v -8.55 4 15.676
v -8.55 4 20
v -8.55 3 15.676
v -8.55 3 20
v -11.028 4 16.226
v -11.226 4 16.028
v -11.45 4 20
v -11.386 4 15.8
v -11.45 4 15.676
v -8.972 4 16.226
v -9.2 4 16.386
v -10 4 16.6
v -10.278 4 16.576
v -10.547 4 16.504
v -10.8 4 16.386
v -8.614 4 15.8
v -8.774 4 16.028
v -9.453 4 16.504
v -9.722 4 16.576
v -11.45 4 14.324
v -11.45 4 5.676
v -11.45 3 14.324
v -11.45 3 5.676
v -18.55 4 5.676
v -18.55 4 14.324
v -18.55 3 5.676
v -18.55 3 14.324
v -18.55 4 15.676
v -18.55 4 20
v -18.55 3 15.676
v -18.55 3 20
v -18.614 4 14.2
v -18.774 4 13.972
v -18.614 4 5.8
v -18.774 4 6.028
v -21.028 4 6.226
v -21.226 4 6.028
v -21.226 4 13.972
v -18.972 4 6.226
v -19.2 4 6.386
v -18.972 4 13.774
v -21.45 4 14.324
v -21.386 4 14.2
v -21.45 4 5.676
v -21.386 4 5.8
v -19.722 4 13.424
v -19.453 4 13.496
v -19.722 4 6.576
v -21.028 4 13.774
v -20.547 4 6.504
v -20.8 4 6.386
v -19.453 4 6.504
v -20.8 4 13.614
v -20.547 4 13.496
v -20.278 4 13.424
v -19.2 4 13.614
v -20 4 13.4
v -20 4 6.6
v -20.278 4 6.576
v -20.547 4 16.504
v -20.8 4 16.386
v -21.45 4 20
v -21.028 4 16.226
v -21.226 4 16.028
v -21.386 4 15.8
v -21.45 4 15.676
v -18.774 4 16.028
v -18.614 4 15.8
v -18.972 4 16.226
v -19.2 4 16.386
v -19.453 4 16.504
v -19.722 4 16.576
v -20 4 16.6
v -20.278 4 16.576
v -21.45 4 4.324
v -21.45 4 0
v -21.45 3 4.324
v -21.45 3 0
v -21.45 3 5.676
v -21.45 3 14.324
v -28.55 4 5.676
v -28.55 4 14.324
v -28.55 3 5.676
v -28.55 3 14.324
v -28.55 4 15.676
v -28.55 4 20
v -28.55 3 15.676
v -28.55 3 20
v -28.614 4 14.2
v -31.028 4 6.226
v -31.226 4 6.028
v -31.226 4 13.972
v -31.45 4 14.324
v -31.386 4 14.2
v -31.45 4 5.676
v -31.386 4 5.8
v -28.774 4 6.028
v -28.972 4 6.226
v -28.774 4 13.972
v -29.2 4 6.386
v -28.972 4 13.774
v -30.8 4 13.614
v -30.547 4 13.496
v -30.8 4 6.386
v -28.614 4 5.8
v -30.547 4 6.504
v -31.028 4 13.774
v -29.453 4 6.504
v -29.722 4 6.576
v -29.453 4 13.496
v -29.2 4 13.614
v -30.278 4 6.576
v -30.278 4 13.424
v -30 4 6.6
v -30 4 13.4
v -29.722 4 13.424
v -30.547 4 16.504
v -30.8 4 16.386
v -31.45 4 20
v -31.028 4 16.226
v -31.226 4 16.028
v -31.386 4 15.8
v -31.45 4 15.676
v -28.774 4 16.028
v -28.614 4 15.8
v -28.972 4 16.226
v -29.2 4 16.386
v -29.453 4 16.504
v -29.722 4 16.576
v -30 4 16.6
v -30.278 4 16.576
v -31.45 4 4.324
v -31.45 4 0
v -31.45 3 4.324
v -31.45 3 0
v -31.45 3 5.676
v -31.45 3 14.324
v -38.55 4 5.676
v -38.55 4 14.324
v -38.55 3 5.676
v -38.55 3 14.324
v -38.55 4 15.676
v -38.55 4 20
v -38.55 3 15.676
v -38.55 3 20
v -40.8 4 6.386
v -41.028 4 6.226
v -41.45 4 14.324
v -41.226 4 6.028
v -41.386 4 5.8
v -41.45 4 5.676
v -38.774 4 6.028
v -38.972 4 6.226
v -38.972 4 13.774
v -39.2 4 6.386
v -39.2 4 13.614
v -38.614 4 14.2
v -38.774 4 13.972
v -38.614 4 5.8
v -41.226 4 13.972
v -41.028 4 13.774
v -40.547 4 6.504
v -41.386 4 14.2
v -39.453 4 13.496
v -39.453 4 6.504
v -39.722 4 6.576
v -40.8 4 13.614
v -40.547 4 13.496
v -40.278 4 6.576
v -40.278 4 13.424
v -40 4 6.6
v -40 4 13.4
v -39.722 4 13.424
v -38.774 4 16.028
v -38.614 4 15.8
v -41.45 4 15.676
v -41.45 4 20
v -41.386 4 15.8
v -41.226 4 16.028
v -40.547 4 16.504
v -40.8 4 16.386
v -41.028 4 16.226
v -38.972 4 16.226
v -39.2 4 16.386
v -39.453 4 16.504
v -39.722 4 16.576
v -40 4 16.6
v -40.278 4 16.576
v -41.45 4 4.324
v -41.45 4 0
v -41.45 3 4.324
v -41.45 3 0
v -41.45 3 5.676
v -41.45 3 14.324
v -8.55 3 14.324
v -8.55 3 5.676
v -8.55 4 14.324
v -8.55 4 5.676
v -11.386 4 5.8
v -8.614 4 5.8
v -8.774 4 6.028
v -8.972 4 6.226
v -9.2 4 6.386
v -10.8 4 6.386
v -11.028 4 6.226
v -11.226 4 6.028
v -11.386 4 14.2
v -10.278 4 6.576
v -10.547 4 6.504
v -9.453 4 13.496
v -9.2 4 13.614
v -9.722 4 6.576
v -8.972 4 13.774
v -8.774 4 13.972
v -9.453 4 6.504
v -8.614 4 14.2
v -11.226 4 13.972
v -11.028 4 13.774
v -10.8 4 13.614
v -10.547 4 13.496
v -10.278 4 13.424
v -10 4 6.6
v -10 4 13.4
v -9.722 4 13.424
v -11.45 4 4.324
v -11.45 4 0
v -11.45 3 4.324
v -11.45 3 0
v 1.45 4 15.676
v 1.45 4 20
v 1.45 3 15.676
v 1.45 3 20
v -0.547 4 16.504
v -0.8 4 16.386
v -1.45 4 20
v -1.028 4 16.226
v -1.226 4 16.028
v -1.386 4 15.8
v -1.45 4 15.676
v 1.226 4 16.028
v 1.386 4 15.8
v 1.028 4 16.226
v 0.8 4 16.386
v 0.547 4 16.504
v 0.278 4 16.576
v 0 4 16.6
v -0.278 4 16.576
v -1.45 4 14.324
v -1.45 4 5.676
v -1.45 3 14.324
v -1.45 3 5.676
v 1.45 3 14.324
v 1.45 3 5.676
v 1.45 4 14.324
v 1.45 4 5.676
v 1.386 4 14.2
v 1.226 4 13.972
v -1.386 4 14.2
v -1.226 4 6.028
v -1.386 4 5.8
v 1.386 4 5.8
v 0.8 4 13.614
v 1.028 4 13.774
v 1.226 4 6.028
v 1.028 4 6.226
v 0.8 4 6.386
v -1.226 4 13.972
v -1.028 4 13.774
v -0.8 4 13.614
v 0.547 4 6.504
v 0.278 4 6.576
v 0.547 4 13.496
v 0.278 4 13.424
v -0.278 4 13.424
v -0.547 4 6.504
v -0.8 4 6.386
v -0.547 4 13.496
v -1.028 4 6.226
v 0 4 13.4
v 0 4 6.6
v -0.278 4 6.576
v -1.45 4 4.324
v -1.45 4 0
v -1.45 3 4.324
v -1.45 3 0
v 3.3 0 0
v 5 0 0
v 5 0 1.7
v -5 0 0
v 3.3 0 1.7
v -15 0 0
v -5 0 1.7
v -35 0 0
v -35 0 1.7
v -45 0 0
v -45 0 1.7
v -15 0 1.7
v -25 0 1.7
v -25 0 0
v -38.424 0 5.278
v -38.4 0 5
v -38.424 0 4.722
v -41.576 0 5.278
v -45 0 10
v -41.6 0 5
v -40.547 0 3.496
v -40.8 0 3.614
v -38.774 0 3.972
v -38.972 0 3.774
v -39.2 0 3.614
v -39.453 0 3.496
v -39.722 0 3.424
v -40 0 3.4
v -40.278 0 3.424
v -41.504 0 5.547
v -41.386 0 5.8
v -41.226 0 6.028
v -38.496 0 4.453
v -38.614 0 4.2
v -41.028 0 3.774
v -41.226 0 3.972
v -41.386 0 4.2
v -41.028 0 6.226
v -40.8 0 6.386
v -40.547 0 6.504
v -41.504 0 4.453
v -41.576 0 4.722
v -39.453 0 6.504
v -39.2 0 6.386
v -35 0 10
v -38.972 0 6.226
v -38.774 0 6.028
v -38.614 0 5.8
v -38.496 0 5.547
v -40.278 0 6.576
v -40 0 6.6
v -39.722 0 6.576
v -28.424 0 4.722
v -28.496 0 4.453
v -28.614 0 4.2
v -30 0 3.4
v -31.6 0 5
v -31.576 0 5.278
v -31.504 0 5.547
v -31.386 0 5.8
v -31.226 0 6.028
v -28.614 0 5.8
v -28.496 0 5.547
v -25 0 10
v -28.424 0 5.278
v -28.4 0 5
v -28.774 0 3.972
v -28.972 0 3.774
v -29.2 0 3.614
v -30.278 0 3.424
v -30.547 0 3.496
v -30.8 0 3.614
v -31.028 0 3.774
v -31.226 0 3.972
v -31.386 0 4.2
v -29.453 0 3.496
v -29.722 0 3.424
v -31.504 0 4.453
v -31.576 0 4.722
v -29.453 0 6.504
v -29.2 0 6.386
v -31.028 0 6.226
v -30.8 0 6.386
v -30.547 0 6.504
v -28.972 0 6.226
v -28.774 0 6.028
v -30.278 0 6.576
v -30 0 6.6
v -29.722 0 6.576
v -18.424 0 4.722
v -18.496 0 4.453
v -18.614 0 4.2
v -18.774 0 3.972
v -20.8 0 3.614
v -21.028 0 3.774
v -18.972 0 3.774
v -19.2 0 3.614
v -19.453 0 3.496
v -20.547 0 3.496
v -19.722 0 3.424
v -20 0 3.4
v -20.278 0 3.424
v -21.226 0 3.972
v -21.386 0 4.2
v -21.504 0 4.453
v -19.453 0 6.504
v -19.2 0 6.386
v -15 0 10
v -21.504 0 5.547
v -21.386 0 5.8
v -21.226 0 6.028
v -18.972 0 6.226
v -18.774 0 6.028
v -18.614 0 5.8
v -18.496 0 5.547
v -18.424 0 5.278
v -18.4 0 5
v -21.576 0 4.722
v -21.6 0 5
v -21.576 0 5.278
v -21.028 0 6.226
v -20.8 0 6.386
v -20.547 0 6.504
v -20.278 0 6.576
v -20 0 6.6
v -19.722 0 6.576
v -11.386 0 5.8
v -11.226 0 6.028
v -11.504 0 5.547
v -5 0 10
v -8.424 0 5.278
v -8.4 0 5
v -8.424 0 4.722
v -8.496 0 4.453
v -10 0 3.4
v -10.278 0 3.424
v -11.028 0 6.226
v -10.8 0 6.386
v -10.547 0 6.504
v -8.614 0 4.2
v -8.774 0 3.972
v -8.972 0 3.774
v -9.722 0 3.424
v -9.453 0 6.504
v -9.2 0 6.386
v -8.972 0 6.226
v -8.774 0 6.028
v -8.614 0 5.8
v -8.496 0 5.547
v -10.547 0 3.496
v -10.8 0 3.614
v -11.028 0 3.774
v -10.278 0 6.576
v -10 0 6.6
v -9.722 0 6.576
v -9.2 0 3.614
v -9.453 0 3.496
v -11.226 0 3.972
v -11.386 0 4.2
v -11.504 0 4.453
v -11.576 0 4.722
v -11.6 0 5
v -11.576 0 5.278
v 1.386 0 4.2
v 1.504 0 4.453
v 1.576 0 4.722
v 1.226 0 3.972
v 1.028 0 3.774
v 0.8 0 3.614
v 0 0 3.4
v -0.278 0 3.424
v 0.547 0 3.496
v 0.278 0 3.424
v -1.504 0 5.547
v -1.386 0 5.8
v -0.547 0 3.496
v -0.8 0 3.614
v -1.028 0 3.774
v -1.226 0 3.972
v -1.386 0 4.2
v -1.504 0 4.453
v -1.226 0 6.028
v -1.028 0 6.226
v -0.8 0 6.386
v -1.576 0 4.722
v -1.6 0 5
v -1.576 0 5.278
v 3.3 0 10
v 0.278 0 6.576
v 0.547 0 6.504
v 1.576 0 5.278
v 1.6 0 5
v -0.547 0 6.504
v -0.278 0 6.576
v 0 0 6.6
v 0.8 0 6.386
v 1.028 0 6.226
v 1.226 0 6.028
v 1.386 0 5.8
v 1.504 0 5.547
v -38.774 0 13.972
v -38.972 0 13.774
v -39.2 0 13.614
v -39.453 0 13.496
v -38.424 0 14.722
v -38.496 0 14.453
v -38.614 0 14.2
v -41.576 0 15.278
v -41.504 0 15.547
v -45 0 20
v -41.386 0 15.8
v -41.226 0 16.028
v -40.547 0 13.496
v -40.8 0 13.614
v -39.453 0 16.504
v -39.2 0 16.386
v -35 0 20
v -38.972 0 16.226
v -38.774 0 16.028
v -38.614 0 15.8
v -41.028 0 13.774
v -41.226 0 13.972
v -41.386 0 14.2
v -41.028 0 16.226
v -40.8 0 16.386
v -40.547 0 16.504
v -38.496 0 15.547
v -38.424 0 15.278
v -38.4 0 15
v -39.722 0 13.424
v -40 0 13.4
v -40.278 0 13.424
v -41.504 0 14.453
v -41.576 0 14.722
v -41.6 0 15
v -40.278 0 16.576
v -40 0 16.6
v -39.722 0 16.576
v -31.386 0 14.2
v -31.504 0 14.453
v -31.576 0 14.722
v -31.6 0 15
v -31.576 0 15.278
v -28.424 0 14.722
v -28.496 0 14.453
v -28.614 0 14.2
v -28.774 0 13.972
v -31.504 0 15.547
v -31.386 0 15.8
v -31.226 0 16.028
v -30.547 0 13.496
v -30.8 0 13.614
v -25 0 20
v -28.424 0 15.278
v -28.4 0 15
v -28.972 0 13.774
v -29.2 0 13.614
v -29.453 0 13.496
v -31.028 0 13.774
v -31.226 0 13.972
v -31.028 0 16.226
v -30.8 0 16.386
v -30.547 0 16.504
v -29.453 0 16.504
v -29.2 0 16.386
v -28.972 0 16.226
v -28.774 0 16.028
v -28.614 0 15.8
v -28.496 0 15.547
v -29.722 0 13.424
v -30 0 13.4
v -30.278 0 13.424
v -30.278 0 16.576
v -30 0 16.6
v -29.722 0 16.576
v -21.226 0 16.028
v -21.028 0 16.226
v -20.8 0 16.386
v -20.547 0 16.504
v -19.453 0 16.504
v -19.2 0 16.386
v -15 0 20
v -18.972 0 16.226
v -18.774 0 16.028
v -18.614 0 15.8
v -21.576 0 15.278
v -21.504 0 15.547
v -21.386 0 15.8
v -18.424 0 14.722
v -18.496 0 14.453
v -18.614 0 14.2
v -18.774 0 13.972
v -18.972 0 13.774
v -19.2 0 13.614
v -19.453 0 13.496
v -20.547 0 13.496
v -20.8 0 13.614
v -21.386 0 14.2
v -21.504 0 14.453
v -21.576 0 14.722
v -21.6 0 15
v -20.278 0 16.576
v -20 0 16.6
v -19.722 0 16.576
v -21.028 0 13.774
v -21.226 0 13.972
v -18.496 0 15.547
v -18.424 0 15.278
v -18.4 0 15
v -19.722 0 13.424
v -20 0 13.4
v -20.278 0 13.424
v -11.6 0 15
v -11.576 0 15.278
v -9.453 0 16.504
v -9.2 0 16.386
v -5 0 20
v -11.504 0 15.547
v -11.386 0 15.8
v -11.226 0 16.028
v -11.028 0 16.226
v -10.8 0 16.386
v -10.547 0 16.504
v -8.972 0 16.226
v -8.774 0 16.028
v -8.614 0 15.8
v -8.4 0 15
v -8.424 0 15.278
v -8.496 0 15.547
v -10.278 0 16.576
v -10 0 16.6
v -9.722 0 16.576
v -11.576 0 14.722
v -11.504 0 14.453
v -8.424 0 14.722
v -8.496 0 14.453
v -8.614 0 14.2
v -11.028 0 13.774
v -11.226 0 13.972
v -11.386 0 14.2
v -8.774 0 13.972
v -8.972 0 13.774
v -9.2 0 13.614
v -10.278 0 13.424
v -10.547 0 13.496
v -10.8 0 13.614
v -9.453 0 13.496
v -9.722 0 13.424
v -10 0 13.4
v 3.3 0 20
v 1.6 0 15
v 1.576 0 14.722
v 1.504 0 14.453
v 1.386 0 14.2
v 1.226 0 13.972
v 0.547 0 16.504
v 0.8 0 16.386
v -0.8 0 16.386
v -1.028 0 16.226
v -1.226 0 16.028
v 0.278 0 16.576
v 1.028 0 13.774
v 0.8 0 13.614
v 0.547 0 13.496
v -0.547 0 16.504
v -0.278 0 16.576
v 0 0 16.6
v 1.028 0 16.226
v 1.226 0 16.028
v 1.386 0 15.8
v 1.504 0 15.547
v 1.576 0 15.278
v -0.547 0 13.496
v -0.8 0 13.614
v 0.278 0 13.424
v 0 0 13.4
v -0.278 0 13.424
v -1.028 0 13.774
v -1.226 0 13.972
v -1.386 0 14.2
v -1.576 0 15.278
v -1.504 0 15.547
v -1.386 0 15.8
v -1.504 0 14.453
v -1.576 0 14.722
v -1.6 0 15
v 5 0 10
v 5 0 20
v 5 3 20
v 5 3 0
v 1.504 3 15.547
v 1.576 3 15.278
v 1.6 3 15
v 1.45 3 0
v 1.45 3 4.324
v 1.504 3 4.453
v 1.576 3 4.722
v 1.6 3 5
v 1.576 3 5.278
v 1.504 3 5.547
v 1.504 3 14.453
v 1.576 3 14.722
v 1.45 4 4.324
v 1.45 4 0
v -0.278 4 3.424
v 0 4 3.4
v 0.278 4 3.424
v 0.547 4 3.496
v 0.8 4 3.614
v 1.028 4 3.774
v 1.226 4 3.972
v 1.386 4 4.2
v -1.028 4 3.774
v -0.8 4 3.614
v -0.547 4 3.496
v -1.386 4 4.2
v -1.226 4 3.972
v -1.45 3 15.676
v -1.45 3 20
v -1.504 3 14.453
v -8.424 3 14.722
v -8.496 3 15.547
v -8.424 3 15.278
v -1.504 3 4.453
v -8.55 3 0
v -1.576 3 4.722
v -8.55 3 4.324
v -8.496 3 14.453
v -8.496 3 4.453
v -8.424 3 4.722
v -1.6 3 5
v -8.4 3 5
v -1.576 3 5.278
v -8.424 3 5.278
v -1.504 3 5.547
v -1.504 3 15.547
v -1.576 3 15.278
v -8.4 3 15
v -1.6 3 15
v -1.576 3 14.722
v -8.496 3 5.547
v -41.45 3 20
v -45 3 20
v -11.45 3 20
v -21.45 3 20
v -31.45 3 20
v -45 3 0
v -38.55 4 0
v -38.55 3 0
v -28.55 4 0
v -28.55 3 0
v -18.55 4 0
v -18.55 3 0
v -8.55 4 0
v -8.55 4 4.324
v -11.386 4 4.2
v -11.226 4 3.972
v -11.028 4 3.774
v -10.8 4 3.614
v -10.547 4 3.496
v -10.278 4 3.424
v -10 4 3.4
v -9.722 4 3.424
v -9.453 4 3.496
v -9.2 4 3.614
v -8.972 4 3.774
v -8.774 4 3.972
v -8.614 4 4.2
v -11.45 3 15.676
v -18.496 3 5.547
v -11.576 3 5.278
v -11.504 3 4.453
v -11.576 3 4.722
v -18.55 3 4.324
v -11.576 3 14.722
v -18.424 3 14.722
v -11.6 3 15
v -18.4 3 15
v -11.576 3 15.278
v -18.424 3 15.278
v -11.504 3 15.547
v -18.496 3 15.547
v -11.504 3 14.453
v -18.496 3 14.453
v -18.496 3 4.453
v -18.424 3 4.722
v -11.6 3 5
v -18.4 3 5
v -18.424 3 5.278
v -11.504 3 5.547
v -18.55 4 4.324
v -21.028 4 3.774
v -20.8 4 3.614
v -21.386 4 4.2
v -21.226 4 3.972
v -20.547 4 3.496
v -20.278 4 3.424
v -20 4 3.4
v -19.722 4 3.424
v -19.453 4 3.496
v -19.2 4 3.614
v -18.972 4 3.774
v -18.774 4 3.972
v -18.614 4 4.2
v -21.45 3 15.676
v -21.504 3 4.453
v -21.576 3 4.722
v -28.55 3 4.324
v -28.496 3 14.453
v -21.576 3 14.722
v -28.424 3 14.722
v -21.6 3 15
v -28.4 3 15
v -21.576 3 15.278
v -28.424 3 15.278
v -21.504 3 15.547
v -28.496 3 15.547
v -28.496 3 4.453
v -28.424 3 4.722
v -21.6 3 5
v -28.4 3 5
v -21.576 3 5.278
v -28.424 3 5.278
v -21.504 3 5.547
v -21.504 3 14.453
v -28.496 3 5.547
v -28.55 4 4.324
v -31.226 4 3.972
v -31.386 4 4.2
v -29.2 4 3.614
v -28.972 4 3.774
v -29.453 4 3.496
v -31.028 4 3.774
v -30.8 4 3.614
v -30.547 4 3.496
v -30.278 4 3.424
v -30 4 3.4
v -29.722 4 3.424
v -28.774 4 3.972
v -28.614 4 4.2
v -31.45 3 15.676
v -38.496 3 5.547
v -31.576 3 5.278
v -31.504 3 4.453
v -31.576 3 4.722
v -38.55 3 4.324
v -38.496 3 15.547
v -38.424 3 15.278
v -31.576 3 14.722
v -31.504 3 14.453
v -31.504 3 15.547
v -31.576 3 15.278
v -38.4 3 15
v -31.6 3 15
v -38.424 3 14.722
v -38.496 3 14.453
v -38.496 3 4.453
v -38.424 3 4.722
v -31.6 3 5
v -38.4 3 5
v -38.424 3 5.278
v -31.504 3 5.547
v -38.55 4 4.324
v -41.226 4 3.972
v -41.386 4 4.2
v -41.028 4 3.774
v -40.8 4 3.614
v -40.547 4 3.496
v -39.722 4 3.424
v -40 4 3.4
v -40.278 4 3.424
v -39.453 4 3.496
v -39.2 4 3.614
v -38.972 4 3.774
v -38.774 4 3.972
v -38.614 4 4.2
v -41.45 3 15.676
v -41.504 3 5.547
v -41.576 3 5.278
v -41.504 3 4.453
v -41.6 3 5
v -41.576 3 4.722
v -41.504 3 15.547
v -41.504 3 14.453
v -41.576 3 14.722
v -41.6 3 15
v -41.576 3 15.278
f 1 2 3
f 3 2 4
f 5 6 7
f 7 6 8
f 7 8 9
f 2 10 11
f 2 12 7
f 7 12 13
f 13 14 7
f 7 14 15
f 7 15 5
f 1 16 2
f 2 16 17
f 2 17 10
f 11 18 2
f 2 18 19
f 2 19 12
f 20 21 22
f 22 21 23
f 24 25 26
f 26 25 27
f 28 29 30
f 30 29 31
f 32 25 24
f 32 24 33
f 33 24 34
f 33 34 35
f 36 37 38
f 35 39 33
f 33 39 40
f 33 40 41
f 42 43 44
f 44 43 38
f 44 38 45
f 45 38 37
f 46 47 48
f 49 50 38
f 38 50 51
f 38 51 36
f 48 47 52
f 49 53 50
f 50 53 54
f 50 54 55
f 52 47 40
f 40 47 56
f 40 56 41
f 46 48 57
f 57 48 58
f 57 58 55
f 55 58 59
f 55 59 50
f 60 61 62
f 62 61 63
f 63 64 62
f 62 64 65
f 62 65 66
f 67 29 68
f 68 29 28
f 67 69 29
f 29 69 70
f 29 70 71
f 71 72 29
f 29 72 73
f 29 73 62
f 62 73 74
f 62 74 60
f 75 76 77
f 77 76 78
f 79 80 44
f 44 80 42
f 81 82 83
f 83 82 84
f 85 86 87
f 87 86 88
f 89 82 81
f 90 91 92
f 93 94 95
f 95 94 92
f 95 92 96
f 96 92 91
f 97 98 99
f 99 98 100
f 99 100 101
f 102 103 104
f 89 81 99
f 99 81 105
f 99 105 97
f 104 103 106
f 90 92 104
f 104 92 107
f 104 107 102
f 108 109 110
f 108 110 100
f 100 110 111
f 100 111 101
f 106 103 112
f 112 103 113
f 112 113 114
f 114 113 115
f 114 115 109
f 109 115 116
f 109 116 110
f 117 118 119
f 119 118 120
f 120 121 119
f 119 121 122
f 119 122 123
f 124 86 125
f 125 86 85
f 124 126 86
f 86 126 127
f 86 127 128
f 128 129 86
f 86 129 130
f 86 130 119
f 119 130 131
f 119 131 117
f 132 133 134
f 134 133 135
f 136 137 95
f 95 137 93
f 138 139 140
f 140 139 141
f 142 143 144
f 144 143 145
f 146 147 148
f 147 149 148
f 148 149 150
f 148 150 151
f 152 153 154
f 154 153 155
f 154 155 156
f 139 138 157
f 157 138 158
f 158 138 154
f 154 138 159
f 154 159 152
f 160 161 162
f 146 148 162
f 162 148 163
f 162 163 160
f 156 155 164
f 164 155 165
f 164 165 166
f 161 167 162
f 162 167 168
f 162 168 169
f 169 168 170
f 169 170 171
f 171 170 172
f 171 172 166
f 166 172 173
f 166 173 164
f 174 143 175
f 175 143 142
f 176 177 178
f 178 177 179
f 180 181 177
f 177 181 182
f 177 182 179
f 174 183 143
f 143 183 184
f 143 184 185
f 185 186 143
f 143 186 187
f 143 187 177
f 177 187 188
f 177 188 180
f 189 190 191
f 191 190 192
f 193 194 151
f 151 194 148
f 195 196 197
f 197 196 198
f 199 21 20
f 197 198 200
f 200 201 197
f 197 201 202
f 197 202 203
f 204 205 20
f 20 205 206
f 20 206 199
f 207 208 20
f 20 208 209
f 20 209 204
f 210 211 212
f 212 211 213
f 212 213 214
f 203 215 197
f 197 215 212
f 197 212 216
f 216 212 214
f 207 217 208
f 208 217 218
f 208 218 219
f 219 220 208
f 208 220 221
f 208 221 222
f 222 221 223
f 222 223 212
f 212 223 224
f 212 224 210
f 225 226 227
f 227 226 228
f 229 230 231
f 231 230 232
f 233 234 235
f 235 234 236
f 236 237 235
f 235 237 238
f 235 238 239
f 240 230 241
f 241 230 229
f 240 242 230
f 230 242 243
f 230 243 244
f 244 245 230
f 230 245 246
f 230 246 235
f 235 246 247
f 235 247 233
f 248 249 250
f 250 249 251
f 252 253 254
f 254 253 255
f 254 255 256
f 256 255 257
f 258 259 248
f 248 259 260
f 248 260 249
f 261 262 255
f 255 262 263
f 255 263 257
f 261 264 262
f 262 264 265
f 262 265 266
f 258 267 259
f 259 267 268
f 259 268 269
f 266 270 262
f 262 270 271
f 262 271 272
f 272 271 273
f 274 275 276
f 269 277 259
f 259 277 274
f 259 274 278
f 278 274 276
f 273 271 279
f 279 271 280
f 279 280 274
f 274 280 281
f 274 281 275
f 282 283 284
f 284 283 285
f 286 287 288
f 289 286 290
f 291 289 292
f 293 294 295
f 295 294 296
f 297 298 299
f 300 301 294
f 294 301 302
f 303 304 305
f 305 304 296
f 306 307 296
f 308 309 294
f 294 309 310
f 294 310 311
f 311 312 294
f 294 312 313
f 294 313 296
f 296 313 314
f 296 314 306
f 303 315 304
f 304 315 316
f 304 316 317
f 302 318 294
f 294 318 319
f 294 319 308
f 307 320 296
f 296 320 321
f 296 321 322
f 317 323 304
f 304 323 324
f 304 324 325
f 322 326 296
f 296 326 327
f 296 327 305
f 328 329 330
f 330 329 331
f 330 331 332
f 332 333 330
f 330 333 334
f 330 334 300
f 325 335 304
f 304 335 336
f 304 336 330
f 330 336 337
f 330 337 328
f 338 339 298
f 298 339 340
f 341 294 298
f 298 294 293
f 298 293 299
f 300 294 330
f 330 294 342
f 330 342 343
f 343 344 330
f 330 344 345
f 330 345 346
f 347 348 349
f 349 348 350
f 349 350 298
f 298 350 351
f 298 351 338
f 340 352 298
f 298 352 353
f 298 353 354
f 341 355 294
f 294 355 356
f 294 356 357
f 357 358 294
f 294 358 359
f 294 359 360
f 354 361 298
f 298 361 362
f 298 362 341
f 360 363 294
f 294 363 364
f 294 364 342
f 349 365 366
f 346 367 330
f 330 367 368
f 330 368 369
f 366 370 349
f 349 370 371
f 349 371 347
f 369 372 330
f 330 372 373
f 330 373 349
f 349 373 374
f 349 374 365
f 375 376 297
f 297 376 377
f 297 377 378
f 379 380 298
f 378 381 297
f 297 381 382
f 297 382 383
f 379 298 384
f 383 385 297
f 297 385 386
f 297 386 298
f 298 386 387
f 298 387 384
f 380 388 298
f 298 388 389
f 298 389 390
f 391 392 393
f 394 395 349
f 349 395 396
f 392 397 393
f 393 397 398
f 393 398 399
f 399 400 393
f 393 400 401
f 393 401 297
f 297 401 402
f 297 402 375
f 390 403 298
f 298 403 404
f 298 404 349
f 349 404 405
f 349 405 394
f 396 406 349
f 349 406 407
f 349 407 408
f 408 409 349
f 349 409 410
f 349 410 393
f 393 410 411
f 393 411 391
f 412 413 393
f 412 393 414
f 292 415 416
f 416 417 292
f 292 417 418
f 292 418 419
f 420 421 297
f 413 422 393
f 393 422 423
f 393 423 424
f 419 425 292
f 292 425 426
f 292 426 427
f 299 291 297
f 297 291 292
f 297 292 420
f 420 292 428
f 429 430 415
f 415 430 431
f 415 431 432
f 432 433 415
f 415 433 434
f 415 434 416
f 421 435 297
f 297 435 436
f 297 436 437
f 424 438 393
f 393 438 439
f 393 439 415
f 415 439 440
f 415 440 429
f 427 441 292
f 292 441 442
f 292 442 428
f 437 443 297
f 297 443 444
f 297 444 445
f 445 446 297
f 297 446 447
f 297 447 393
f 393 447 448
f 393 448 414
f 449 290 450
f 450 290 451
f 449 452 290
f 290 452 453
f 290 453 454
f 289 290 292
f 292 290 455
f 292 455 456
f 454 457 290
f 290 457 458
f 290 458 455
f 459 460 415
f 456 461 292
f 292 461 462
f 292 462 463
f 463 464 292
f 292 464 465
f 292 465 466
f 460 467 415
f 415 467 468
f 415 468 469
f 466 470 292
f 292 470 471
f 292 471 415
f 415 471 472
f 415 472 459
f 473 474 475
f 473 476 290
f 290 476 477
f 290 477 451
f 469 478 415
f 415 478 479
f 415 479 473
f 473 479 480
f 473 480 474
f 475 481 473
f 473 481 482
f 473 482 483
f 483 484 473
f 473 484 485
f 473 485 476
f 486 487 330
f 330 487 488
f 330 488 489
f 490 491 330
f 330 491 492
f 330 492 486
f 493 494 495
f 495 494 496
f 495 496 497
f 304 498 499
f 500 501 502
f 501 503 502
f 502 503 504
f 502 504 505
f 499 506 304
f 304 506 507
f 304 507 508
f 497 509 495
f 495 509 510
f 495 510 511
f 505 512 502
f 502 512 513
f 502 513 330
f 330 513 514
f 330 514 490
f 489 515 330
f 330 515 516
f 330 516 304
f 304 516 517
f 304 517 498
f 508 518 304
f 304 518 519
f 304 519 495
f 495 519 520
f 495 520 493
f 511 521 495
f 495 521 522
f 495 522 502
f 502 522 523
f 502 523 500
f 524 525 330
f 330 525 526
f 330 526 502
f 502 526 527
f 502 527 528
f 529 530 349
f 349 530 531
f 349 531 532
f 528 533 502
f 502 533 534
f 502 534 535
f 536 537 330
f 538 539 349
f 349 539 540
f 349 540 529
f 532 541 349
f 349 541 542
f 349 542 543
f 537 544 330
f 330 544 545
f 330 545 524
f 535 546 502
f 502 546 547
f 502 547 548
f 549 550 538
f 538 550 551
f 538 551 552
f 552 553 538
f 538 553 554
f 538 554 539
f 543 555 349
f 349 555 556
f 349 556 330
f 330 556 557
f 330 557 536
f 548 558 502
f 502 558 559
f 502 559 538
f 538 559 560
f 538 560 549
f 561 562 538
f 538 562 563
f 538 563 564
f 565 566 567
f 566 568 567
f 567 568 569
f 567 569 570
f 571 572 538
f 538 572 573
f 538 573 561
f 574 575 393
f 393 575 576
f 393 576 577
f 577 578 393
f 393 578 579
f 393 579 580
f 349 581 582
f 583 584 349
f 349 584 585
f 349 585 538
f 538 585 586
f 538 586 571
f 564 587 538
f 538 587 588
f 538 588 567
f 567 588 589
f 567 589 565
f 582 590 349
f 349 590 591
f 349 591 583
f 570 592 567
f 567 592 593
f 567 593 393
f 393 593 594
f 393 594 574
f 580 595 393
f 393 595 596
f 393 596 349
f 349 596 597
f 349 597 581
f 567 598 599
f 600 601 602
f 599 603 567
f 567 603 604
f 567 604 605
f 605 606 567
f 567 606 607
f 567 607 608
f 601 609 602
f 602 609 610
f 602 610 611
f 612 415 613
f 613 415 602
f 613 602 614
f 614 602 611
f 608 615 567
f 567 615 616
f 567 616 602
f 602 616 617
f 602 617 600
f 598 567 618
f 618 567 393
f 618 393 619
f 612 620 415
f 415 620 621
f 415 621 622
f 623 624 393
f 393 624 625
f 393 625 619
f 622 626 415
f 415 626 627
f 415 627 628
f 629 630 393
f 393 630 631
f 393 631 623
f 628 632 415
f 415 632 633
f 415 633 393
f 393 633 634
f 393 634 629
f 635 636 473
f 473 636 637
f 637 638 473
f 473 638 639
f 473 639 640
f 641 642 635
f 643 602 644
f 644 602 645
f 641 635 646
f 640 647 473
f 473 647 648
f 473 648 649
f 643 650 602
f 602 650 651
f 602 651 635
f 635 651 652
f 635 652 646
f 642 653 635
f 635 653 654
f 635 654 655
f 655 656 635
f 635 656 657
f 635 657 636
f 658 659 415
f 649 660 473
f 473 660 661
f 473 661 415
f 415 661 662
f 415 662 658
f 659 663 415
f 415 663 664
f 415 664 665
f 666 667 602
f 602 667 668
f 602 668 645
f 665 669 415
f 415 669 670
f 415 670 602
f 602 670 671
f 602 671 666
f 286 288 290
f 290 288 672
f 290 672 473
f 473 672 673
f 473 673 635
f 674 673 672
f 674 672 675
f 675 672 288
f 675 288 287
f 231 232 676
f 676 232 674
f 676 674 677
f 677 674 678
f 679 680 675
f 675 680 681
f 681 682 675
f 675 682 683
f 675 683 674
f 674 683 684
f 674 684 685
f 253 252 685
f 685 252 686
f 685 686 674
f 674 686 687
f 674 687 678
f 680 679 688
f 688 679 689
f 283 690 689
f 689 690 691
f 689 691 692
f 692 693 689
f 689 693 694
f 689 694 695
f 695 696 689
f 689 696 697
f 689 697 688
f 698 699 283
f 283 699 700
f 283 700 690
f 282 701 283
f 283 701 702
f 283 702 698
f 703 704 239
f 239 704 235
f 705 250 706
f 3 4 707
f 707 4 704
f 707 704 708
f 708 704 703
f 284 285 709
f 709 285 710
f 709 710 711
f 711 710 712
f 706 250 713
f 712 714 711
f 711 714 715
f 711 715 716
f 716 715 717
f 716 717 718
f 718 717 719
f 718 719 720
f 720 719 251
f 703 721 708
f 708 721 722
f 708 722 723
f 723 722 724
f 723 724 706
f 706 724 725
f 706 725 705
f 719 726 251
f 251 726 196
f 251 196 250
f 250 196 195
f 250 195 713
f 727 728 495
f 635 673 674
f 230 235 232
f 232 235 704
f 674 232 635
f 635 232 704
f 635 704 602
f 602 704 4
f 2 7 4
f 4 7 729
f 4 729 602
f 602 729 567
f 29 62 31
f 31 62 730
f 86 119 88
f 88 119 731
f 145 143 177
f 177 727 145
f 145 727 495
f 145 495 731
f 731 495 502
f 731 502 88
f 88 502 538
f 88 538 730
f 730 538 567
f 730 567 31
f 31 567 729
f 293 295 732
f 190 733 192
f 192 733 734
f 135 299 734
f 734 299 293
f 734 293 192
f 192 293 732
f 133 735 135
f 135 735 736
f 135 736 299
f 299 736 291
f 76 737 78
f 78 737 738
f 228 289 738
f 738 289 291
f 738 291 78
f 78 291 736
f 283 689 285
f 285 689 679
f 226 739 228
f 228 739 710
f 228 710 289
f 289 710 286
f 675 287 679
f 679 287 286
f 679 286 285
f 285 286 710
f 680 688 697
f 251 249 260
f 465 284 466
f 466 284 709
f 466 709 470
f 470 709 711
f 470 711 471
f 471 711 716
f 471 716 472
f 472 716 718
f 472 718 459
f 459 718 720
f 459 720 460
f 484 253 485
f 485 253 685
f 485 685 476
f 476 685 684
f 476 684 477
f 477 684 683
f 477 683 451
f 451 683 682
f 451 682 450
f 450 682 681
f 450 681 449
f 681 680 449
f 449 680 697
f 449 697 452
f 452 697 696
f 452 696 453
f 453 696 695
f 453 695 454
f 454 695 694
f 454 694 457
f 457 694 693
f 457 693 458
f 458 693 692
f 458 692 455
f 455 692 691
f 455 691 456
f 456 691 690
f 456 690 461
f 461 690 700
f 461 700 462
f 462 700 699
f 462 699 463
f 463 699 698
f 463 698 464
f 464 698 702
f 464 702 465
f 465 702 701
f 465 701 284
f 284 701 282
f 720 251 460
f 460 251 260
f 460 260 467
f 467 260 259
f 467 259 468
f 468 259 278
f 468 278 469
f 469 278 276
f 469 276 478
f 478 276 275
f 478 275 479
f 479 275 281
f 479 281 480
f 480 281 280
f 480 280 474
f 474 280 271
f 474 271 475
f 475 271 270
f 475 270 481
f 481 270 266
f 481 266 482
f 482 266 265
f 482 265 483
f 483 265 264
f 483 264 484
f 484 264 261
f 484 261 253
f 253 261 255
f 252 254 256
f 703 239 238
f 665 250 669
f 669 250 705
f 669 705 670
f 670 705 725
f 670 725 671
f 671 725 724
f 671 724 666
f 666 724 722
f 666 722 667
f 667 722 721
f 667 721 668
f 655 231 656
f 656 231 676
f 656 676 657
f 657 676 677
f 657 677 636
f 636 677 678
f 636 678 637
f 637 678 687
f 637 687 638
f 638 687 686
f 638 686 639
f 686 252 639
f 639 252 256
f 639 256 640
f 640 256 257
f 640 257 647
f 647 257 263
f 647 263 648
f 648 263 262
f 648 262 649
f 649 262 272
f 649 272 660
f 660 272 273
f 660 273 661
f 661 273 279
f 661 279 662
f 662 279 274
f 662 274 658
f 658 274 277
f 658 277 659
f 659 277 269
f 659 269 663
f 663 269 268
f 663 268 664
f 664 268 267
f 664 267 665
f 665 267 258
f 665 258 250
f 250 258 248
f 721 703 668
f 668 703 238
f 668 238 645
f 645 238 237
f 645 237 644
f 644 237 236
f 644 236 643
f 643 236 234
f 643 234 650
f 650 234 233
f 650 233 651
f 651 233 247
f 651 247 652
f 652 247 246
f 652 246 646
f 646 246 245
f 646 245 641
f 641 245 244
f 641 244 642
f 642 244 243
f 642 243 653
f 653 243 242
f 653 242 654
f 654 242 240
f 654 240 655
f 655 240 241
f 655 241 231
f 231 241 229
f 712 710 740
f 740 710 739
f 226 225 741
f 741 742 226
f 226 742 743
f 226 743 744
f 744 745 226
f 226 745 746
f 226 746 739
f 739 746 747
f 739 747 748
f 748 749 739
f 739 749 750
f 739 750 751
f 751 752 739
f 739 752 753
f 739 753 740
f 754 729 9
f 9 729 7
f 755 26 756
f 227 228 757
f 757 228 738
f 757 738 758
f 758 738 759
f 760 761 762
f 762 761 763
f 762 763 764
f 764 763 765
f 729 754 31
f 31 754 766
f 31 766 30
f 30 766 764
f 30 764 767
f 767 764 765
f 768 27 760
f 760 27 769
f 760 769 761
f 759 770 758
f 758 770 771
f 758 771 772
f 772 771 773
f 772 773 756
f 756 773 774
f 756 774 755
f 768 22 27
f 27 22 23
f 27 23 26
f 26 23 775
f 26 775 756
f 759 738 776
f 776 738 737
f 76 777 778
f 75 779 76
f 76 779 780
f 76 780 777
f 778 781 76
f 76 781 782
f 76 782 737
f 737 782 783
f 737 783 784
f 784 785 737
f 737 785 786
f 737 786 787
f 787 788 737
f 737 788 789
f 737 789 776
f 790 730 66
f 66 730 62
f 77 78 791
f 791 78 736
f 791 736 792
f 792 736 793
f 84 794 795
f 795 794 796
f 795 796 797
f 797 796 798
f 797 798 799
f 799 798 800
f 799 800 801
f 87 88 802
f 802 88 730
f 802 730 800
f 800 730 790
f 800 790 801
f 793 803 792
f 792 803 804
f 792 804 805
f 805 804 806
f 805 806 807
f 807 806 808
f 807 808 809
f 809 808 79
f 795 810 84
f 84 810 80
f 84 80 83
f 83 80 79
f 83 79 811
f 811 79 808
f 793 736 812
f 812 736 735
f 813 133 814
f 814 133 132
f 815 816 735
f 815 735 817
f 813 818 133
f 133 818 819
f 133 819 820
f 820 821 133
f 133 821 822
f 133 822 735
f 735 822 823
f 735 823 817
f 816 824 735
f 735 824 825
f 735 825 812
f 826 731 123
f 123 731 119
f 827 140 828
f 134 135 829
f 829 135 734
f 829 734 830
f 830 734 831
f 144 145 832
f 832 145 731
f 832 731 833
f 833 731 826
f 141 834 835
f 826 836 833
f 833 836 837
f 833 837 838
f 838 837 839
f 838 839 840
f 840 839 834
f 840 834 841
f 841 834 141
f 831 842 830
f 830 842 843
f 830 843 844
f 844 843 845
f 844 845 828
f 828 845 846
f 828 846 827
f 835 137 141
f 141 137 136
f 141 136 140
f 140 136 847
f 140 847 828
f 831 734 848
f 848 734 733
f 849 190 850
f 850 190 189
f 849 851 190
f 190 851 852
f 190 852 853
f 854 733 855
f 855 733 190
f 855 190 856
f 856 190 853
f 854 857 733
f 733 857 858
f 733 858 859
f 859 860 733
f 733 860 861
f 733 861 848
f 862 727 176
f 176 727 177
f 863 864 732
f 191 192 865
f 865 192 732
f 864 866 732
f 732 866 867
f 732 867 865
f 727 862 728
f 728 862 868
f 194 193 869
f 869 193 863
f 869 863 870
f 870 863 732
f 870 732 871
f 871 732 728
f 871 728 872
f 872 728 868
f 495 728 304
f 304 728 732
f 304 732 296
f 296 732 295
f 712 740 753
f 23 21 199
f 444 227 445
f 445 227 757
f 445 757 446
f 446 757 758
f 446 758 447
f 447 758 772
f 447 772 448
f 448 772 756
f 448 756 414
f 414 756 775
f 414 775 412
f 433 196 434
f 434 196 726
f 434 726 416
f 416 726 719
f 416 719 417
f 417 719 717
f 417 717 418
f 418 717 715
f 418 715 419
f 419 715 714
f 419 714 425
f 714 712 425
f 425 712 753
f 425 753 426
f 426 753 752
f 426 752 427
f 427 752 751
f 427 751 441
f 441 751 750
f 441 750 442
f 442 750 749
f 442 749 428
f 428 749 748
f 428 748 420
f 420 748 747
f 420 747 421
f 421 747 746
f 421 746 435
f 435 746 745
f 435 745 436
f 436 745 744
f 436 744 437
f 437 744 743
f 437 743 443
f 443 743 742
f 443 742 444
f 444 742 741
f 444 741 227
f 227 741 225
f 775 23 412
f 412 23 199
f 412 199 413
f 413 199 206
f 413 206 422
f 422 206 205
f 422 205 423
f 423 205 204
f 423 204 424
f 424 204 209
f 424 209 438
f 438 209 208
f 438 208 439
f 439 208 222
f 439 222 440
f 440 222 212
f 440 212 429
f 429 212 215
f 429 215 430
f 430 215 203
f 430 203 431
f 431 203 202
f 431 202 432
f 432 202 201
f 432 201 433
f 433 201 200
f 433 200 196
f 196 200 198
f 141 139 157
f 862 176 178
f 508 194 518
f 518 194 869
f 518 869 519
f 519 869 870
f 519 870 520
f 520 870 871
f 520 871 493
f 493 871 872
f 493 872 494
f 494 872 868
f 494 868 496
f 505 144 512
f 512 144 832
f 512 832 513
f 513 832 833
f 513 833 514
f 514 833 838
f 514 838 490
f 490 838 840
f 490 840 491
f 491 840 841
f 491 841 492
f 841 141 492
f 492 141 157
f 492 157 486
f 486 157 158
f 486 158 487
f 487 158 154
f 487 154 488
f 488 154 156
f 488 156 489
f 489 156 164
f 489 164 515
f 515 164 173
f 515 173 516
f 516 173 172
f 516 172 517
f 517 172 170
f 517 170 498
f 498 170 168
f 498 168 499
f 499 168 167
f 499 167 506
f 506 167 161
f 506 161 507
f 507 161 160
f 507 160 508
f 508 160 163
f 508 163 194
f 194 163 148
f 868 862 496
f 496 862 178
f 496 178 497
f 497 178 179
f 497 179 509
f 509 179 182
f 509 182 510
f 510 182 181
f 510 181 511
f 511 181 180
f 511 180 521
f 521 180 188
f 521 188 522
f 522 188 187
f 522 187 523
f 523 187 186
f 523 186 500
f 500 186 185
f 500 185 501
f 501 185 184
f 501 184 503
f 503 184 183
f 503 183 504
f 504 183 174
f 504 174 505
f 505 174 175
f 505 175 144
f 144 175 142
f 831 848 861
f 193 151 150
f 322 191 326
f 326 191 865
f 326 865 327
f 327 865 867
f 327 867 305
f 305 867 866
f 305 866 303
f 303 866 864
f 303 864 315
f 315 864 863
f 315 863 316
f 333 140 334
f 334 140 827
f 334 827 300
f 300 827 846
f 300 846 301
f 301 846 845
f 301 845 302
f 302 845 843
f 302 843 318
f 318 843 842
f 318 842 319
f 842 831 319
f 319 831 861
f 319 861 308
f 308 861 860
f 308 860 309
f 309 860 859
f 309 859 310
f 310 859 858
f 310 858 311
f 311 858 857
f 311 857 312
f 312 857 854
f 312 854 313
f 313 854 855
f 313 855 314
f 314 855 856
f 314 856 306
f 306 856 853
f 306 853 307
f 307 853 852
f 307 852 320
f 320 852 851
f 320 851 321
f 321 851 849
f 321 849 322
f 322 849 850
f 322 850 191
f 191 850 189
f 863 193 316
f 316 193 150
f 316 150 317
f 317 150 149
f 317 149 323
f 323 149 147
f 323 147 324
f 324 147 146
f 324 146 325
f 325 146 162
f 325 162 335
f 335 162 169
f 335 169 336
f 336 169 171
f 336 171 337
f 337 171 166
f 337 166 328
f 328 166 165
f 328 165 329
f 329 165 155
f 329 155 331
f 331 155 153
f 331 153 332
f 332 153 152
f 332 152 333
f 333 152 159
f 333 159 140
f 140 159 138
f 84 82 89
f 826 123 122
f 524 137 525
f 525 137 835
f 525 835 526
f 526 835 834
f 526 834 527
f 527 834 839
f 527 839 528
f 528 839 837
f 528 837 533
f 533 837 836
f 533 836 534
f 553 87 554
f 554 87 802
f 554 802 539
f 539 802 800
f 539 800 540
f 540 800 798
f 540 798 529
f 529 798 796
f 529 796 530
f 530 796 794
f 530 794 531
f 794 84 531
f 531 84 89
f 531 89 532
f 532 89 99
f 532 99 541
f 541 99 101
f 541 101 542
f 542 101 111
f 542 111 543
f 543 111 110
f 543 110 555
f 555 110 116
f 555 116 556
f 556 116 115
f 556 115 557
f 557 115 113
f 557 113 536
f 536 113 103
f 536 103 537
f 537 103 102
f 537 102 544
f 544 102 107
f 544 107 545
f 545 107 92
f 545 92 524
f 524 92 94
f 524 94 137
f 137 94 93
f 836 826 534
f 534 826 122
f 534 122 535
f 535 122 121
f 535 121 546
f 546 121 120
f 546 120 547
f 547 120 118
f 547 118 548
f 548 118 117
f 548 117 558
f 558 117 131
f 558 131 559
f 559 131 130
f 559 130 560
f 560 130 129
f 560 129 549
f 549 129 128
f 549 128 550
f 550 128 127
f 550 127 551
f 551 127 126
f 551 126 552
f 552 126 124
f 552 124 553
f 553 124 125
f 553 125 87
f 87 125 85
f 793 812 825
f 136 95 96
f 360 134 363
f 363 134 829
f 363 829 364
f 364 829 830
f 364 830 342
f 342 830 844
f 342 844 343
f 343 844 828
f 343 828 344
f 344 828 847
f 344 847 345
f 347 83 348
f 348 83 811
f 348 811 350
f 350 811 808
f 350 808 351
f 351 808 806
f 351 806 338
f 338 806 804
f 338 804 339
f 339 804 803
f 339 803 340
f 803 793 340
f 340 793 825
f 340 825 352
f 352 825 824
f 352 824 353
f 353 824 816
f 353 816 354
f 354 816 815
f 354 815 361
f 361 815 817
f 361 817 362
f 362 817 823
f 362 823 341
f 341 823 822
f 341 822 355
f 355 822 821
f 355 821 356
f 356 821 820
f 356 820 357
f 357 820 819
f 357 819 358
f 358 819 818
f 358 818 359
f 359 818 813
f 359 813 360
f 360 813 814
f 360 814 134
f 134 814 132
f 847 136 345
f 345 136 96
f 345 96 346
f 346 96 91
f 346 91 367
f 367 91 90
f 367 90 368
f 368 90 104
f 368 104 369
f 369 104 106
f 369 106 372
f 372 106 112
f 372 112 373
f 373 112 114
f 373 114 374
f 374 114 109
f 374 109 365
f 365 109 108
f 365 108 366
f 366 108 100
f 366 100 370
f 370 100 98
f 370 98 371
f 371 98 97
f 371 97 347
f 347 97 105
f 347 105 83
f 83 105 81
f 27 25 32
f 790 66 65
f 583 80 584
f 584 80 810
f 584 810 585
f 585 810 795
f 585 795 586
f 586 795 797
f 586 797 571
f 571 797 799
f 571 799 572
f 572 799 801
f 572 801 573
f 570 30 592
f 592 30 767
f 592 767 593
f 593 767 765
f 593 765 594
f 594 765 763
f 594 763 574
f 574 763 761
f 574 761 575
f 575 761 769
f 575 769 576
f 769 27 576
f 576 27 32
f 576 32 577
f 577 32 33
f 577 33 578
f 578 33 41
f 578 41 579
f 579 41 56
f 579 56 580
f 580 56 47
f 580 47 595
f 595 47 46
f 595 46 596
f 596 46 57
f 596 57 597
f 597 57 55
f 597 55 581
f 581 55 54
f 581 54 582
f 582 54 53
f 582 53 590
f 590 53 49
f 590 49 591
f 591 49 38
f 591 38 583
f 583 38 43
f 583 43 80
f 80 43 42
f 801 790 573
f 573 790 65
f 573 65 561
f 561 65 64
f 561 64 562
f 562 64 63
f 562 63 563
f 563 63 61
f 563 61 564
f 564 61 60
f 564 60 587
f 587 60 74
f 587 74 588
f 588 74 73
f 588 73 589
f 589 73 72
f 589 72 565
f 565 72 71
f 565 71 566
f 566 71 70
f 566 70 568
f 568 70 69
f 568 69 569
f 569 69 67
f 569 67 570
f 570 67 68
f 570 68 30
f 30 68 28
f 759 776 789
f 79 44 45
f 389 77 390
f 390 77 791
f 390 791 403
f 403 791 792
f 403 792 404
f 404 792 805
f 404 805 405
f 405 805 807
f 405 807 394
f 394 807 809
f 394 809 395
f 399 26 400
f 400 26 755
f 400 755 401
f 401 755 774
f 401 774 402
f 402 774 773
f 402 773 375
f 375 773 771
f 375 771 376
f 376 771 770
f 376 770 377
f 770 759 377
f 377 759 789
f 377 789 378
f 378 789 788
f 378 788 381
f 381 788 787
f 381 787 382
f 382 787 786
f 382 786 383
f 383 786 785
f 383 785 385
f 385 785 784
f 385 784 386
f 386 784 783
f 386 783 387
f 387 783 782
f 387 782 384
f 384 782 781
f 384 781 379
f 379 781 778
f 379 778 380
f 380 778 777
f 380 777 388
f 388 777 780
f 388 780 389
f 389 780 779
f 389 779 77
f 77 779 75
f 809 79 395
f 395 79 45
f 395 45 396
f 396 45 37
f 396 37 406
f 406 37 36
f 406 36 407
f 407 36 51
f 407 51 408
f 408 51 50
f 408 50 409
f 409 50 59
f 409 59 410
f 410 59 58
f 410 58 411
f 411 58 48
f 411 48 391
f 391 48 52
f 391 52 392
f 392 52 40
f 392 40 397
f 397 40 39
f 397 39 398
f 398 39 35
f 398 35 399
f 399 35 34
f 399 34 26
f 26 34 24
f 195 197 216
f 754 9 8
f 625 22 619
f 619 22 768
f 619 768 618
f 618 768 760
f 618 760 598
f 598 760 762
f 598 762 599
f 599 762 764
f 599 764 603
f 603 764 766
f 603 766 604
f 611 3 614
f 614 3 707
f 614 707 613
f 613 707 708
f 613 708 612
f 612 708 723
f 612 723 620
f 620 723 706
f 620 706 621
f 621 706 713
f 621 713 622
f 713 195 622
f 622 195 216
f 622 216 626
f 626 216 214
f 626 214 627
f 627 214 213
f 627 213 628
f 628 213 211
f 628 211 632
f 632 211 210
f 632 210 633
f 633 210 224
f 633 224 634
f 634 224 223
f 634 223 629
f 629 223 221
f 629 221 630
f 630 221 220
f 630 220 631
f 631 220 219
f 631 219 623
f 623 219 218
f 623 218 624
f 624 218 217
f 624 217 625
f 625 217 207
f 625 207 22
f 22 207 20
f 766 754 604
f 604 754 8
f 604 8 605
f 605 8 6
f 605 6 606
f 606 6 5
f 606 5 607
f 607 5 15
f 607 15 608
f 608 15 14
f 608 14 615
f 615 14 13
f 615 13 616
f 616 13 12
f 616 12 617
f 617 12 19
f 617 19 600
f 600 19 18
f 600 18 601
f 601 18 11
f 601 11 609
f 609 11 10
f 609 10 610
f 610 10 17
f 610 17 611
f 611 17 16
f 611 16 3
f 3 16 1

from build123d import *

# Parameters (mm, degrees)
MAIN_DEPTH                 = 20
ESQUISSE2_R                = 1.6
TOPHOLE_DEPTH              = 5
R_P_TITION_LIN_AIRE1_COUNT = 5
R_P_TITION_LIN_AIRE1_PITCH = 10


with BuildPart() as part:
    # Esquisse1 → Main (new body)
    with BuildSketch(Plane.XY):
        Polygon((-5, 0), (-5, 3), (-1.45, 3), (-1.45, 4), (1.45, 4), (1.45, 3), (5, 3), (5, 0), align=None)
    main = extrude(amount=MAIN_DEPTH)

    # Esquisse2 → TopHole (cut, through all)
    with BuildSketch(Plane(origin=(0, 4, 0), x_dir=(1, 0, 0), z_dir=(0, 1, 0))):
        with Locations((0, -5)):
            Circle(ESQUISSE2_R)
        with Locations((0, -15)):
            Circle(ESQUISSE2_R)
    tophole = extrude(amount=-TOPHOLE_DEPTH, mode=Mode.SUBTRACT)

    # Répétition linéaire1: Main, TopHole ×5
    with Locations(*[(-i * R_P_TITION_LIN_AIRE1_PITCH, 0, 0) for i in range(1, R_P_TITION_LIN_AIRE1_COUNT)]):
        add(main)
        add(tophole, mode=Mode.SUBTRACT)


solid = part.part
